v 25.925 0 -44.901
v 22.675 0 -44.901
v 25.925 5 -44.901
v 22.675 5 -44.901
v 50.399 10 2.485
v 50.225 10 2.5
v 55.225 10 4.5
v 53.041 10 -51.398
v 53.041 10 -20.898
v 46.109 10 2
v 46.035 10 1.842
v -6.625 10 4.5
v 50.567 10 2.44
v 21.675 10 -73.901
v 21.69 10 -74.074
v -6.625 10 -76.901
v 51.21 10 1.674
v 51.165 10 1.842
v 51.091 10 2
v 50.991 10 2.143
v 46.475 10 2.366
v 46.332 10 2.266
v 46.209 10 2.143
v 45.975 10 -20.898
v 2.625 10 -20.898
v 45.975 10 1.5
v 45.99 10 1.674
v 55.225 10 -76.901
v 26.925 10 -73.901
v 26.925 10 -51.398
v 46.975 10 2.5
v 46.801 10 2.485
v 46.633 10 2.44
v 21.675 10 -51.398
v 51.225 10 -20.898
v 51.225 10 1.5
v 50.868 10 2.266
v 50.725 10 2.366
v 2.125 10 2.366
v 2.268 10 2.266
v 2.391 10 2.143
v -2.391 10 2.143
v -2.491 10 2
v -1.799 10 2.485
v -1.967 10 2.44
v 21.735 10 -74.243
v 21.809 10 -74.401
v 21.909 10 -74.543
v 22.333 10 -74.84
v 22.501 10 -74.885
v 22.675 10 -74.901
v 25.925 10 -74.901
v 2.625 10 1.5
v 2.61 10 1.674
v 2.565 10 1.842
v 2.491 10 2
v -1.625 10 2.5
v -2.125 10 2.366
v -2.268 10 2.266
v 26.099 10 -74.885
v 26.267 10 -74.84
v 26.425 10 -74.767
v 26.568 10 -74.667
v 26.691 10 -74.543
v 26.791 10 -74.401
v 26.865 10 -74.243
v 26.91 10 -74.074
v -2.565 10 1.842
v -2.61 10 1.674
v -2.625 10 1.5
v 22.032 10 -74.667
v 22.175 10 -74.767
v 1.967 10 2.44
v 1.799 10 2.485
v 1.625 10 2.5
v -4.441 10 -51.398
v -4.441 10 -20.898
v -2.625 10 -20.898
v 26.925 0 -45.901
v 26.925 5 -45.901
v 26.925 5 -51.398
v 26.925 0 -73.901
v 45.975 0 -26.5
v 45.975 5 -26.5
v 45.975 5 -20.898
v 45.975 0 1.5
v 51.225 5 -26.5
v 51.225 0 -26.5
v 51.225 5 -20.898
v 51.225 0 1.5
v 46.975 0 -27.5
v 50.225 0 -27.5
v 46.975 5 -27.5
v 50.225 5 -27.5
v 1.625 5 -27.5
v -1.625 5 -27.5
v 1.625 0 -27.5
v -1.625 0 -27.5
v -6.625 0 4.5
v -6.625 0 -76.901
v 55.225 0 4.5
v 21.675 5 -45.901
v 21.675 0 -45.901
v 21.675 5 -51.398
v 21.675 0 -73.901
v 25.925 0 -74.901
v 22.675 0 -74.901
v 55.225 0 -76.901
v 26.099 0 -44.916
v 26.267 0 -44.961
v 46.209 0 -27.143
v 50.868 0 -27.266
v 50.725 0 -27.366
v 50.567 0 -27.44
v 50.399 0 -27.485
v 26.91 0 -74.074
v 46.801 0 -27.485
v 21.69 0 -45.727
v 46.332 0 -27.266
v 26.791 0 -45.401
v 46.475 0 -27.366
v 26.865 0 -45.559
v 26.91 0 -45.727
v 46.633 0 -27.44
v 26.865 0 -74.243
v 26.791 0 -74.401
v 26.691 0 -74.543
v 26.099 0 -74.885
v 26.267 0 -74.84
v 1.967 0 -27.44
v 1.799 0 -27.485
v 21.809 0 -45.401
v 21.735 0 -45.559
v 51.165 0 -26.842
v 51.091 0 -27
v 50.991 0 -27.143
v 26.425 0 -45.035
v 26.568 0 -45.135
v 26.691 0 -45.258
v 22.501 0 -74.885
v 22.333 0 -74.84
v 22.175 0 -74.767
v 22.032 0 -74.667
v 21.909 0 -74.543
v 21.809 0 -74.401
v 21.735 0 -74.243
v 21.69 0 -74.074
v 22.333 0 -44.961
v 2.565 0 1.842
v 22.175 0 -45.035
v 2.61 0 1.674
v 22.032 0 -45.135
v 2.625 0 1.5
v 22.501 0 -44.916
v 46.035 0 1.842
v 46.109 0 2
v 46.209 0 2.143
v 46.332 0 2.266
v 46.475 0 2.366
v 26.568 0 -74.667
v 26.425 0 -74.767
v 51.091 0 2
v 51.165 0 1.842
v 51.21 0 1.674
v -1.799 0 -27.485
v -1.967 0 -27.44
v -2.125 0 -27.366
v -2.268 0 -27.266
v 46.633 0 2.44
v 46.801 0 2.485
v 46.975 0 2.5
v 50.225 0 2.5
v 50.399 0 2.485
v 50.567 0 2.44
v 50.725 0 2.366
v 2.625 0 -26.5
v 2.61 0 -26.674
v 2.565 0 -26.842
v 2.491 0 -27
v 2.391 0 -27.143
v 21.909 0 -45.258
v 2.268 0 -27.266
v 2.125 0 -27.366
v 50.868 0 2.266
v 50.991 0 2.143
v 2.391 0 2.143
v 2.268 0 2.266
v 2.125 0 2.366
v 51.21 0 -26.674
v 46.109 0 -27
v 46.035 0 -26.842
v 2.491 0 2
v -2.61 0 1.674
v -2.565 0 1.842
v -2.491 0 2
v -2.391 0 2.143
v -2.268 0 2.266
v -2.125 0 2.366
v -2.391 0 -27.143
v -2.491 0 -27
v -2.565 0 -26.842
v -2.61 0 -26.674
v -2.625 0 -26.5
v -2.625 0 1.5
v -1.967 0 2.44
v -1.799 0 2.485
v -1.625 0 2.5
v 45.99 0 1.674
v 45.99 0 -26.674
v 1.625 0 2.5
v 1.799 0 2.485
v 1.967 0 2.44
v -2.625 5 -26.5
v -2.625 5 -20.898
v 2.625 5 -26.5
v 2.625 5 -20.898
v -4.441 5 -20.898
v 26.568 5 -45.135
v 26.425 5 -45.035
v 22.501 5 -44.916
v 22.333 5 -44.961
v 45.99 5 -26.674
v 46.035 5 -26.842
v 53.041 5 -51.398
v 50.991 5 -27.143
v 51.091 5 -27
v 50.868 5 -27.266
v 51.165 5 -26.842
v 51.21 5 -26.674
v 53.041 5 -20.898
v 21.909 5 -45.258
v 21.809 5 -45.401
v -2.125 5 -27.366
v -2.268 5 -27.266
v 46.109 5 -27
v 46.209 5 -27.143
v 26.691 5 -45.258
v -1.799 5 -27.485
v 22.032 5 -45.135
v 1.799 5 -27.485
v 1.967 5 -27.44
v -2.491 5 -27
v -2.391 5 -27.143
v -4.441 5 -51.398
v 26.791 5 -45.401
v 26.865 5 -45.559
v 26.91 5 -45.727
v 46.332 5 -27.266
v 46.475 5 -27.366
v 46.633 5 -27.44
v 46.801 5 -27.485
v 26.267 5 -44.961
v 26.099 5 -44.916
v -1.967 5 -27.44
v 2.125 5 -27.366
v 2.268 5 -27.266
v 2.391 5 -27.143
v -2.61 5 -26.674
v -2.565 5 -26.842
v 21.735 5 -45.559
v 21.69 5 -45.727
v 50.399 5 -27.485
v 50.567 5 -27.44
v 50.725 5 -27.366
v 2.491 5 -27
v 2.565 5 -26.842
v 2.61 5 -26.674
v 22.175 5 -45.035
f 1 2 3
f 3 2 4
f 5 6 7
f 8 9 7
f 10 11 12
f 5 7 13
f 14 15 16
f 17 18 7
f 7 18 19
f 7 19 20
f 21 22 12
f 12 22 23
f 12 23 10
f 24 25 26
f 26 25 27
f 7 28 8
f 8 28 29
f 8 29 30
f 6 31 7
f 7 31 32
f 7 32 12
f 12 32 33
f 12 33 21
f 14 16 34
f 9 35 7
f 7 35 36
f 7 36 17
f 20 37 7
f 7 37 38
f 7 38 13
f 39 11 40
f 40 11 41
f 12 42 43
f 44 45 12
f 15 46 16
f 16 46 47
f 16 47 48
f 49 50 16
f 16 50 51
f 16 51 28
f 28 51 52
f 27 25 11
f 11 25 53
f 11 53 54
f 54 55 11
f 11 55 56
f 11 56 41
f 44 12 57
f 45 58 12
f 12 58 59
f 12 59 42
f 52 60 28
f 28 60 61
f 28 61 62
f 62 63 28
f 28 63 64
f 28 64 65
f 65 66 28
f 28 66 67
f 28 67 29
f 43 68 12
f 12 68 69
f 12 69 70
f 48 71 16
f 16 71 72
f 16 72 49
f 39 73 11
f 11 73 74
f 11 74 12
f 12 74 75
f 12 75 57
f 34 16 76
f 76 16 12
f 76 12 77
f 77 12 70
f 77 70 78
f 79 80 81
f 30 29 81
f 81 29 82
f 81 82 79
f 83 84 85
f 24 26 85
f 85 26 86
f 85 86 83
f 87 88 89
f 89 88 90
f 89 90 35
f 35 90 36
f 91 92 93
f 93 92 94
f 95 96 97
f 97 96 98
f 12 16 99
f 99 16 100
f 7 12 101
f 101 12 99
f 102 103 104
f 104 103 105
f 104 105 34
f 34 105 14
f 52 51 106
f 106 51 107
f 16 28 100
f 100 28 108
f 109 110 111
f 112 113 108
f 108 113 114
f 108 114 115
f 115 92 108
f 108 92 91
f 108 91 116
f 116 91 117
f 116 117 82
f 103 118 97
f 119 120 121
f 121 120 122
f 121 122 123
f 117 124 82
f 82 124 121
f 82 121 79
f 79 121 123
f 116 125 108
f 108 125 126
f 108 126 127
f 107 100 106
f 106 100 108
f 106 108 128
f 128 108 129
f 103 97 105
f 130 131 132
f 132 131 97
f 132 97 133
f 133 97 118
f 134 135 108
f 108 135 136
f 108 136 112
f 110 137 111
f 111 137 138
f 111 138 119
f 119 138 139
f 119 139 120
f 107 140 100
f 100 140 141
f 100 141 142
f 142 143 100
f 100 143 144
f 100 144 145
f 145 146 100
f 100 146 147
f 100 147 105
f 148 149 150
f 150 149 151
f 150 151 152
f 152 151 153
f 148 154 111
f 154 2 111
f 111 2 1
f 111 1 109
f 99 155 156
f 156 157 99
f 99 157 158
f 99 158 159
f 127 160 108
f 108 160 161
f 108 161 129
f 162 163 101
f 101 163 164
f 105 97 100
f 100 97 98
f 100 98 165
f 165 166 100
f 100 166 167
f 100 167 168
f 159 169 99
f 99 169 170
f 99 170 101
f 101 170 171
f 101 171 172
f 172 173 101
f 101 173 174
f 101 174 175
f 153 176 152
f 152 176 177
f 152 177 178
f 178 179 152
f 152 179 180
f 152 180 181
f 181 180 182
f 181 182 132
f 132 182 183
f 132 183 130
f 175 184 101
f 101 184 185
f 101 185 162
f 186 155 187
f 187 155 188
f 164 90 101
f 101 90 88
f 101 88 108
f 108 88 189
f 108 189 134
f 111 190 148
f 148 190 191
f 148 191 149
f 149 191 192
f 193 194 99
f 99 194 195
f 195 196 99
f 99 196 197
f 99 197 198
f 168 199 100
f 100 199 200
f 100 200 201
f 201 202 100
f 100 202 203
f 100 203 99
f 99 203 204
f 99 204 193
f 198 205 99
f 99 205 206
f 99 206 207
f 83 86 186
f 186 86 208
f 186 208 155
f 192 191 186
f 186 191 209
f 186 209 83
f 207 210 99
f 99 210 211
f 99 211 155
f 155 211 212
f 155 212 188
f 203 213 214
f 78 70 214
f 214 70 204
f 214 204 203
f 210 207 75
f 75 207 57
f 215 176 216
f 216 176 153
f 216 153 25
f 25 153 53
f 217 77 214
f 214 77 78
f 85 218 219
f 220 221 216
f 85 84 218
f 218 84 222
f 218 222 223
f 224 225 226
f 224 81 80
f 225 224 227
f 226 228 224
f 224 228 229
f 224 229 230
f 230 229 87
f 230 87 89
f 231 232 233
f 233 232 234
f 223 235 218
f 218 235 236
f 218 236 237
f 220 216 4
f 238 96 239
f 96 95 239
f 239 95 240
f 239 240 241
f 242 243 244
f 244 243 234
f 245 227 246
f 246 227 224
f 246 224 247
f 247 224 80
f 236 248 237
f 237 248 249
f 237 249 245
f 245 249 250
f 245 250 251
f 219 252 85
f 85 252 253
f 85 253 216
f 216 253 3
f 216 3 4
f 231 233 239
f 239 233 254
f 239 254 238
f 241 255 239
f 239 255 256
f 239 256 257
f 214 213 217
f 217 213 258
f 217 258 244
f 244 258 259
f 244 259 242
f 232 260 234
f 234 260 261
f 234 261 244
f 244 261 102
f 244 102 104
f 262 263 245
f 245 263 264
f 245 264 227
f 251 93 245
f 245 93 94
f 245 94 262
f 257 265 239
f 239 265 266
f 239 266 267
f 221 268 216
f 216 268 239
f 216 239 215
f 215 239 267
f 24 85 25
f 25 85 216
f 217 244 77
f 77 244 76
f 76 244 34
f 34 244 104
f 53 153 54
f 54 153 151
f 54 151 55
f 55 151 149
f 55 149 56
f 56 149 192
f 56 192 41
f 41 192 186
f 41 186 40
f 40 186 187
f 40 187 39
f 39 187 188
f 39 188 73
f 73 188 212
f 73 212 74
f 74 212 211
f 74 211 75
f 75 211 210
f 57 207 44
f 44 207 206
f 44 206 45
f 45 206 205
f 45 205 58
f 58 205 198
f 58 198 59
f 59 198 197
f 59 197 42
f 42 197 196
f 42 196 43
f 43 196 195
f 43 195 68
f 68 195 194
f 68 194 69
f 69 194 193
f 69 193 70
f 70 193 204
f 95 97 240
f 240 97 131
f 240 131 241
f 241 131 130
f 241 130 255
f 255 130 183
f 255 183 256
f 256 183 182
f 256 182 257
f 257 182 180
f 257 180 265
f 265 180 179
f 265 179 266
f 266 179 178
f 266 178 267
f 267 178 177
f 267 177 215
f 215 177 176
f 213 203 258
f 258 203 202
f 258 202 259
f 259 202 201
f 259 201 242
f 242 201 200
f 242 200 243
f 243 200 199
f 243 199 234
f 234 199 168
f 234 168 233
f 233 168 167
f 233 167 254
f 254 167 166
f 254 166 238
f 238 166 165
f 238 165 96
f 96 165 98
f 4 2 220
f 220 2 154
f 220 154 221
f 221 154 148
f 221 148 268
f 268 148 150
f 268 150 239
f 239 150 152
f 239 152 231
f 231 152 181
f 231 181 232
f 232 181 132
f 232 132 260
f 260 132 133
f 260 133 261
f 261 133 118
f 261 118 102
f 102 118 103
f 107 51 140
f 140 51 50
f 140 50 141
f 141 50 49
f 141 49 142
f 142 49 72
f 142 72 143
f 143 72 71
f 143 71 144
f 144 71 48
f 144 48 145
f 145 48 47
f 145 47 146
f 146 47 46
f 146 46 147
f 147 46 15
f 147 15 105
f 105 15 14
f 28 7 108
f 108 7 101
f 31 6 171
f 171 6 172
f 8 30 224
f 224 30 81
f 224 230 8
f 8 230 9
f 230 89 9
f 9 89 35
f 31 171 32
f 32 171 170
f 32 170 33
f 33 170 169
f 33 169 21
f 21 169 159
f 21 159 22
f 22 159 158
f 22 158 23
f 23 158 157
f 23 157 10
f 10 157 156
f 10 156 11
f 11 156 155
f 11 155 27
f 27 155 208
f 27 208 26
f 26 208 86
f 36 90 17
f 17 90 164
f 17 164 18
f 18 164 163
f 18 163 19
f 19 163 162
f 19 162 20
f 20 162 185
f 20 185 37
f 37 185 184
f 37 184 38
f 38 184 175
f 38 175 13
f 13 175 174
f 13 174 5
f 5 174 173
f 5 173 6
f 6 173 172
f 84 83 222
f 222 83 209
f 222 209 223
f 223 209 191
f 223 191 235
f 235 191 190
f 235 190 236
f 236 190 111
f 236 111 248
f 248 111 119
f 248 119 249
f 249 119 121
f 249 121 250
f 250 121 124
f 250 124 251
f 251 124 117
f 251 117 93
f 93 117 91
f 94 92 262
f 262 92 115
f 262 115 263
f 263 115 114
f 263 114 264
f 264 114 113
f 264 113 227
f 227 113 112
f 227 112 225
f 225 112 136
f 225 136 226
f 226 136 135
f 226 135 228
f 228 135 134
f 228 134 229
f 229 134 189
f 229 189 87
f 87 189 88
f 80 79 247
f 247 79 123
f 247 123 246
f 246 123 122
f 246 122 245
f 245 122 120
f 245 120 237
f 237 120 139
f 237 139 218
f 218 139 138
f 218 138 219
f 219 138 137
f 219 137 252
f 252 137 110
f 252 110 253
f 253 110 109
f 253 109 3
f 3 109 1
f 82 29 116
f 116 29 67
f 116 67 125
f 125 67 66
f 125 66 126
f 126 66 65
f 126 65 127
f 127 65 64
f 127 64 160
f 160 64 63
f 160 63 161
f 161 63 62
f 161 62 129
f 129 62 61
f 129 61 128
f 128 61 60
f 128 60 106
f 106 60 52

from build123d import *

# Parameters (mm, degrees)
BOSS_EXTRUDE5_DEPTH   = 10
CUT_EXTRUDE6_DEPTH    = 5
FILLET4_R             = 1
FILLET4_OF_MIRROR25_R = 1


with BuildPart() as part:
    # Sketch15 → Boss-Extrude5 (new body)
    with BuildSketch(Plane(origin=(0, 0, 0), x_dir=(1, 0, 0), z_dir=(0, 1, 0))):
        Polygon((24.3, 76.900659127), (-6.625, 76.900659127), (-6.625, -4.5), (24.3, -4.5), (24.3, 44.900659127), (21.675, 44.900659127), (21.675, 47.400659127), (21.675, 72.400659127), (21.675, 74.900659127), (24.3, 74.900659127), align=None)
        Polygon((-2.625, 25), (-2.625, 0), (-2.625, -2.5), (0, -2.5), (2.625, -2.5), (2.625, 0), (2.625, 25), (2.625, 27.5), (0, 27.5), (-2.625, 27.5), align=None, mode=Mode.SUBTRACT)
    boss_extrude5 = extrude(amount=BOSS_EXTRUDE5_DEPTH)

    # Sketch18 → Cut-Extrude6 (cut)
    with BuildSketch(Plane(origin=(0, 10, 0), x_dir=(1, 0, 0), z_dir=(0, 1, 0))):
        Polygon((21.675, 51.3980649), (-4.44053483, 51.3980649), (-4.44053483, 20.8980649), (24.3, 20.8980649), (24.3, 51.3980649), align=None)
    cut_extrude6 = extrude(amount=-CUT_EXTRUDE6_DEPTH, mode=Mode.SUBTRACT)

    # Fillet4
    fillet4_edges = [part.edges().sort_by_distance(p)[0] for p in [
        (21.675, 5, -74.900659127),
        (-2.625, 5, 2.5),
        (2.625, 5, 2.5),
        (2.625, 2.5, -27.5),
        (-2.625, 2.5, -27.5),
        (21.675, 2.5, -44.900659127),
    ]]
    fillet(fillet4_edges, radius=FILLET4_R)

    # Mirror25: Boss-Extrude5, Cut-Extrude6 across plane
    add(boss_extrude5.mirror(Plane(origin=(24.3, 10, 4.5), x_dir=(0, 0, 1), z_dir=(-1, 0, 0))))
    add(cut_extrude6.mirror(Plane(origin=(24.3, 10, 4.5), x_dir=(0, 0, 1), z_dir=(-1, 0, 0))), mode=Mode.SUBTRACT)

    # Fillet4 of Mirror25
    fillet4_of_mirror25_edges = [part.edges().sort_by_distance(p)[0] for p in [
        (26.925, 5, -74.900659127),
        (51.225, 5, 2.5),
        (45.975, 5, 2.5),
        (45.975, 2.5, -27.5),
        (51.225, 2.5, -27.5),
        (26.925, 2.5, -44.900659127),
    ]]
    fillet(fillet4_of_mirror25_edges, radius=FILLET4_OF_MIRROR25_R)


solid = part.part
